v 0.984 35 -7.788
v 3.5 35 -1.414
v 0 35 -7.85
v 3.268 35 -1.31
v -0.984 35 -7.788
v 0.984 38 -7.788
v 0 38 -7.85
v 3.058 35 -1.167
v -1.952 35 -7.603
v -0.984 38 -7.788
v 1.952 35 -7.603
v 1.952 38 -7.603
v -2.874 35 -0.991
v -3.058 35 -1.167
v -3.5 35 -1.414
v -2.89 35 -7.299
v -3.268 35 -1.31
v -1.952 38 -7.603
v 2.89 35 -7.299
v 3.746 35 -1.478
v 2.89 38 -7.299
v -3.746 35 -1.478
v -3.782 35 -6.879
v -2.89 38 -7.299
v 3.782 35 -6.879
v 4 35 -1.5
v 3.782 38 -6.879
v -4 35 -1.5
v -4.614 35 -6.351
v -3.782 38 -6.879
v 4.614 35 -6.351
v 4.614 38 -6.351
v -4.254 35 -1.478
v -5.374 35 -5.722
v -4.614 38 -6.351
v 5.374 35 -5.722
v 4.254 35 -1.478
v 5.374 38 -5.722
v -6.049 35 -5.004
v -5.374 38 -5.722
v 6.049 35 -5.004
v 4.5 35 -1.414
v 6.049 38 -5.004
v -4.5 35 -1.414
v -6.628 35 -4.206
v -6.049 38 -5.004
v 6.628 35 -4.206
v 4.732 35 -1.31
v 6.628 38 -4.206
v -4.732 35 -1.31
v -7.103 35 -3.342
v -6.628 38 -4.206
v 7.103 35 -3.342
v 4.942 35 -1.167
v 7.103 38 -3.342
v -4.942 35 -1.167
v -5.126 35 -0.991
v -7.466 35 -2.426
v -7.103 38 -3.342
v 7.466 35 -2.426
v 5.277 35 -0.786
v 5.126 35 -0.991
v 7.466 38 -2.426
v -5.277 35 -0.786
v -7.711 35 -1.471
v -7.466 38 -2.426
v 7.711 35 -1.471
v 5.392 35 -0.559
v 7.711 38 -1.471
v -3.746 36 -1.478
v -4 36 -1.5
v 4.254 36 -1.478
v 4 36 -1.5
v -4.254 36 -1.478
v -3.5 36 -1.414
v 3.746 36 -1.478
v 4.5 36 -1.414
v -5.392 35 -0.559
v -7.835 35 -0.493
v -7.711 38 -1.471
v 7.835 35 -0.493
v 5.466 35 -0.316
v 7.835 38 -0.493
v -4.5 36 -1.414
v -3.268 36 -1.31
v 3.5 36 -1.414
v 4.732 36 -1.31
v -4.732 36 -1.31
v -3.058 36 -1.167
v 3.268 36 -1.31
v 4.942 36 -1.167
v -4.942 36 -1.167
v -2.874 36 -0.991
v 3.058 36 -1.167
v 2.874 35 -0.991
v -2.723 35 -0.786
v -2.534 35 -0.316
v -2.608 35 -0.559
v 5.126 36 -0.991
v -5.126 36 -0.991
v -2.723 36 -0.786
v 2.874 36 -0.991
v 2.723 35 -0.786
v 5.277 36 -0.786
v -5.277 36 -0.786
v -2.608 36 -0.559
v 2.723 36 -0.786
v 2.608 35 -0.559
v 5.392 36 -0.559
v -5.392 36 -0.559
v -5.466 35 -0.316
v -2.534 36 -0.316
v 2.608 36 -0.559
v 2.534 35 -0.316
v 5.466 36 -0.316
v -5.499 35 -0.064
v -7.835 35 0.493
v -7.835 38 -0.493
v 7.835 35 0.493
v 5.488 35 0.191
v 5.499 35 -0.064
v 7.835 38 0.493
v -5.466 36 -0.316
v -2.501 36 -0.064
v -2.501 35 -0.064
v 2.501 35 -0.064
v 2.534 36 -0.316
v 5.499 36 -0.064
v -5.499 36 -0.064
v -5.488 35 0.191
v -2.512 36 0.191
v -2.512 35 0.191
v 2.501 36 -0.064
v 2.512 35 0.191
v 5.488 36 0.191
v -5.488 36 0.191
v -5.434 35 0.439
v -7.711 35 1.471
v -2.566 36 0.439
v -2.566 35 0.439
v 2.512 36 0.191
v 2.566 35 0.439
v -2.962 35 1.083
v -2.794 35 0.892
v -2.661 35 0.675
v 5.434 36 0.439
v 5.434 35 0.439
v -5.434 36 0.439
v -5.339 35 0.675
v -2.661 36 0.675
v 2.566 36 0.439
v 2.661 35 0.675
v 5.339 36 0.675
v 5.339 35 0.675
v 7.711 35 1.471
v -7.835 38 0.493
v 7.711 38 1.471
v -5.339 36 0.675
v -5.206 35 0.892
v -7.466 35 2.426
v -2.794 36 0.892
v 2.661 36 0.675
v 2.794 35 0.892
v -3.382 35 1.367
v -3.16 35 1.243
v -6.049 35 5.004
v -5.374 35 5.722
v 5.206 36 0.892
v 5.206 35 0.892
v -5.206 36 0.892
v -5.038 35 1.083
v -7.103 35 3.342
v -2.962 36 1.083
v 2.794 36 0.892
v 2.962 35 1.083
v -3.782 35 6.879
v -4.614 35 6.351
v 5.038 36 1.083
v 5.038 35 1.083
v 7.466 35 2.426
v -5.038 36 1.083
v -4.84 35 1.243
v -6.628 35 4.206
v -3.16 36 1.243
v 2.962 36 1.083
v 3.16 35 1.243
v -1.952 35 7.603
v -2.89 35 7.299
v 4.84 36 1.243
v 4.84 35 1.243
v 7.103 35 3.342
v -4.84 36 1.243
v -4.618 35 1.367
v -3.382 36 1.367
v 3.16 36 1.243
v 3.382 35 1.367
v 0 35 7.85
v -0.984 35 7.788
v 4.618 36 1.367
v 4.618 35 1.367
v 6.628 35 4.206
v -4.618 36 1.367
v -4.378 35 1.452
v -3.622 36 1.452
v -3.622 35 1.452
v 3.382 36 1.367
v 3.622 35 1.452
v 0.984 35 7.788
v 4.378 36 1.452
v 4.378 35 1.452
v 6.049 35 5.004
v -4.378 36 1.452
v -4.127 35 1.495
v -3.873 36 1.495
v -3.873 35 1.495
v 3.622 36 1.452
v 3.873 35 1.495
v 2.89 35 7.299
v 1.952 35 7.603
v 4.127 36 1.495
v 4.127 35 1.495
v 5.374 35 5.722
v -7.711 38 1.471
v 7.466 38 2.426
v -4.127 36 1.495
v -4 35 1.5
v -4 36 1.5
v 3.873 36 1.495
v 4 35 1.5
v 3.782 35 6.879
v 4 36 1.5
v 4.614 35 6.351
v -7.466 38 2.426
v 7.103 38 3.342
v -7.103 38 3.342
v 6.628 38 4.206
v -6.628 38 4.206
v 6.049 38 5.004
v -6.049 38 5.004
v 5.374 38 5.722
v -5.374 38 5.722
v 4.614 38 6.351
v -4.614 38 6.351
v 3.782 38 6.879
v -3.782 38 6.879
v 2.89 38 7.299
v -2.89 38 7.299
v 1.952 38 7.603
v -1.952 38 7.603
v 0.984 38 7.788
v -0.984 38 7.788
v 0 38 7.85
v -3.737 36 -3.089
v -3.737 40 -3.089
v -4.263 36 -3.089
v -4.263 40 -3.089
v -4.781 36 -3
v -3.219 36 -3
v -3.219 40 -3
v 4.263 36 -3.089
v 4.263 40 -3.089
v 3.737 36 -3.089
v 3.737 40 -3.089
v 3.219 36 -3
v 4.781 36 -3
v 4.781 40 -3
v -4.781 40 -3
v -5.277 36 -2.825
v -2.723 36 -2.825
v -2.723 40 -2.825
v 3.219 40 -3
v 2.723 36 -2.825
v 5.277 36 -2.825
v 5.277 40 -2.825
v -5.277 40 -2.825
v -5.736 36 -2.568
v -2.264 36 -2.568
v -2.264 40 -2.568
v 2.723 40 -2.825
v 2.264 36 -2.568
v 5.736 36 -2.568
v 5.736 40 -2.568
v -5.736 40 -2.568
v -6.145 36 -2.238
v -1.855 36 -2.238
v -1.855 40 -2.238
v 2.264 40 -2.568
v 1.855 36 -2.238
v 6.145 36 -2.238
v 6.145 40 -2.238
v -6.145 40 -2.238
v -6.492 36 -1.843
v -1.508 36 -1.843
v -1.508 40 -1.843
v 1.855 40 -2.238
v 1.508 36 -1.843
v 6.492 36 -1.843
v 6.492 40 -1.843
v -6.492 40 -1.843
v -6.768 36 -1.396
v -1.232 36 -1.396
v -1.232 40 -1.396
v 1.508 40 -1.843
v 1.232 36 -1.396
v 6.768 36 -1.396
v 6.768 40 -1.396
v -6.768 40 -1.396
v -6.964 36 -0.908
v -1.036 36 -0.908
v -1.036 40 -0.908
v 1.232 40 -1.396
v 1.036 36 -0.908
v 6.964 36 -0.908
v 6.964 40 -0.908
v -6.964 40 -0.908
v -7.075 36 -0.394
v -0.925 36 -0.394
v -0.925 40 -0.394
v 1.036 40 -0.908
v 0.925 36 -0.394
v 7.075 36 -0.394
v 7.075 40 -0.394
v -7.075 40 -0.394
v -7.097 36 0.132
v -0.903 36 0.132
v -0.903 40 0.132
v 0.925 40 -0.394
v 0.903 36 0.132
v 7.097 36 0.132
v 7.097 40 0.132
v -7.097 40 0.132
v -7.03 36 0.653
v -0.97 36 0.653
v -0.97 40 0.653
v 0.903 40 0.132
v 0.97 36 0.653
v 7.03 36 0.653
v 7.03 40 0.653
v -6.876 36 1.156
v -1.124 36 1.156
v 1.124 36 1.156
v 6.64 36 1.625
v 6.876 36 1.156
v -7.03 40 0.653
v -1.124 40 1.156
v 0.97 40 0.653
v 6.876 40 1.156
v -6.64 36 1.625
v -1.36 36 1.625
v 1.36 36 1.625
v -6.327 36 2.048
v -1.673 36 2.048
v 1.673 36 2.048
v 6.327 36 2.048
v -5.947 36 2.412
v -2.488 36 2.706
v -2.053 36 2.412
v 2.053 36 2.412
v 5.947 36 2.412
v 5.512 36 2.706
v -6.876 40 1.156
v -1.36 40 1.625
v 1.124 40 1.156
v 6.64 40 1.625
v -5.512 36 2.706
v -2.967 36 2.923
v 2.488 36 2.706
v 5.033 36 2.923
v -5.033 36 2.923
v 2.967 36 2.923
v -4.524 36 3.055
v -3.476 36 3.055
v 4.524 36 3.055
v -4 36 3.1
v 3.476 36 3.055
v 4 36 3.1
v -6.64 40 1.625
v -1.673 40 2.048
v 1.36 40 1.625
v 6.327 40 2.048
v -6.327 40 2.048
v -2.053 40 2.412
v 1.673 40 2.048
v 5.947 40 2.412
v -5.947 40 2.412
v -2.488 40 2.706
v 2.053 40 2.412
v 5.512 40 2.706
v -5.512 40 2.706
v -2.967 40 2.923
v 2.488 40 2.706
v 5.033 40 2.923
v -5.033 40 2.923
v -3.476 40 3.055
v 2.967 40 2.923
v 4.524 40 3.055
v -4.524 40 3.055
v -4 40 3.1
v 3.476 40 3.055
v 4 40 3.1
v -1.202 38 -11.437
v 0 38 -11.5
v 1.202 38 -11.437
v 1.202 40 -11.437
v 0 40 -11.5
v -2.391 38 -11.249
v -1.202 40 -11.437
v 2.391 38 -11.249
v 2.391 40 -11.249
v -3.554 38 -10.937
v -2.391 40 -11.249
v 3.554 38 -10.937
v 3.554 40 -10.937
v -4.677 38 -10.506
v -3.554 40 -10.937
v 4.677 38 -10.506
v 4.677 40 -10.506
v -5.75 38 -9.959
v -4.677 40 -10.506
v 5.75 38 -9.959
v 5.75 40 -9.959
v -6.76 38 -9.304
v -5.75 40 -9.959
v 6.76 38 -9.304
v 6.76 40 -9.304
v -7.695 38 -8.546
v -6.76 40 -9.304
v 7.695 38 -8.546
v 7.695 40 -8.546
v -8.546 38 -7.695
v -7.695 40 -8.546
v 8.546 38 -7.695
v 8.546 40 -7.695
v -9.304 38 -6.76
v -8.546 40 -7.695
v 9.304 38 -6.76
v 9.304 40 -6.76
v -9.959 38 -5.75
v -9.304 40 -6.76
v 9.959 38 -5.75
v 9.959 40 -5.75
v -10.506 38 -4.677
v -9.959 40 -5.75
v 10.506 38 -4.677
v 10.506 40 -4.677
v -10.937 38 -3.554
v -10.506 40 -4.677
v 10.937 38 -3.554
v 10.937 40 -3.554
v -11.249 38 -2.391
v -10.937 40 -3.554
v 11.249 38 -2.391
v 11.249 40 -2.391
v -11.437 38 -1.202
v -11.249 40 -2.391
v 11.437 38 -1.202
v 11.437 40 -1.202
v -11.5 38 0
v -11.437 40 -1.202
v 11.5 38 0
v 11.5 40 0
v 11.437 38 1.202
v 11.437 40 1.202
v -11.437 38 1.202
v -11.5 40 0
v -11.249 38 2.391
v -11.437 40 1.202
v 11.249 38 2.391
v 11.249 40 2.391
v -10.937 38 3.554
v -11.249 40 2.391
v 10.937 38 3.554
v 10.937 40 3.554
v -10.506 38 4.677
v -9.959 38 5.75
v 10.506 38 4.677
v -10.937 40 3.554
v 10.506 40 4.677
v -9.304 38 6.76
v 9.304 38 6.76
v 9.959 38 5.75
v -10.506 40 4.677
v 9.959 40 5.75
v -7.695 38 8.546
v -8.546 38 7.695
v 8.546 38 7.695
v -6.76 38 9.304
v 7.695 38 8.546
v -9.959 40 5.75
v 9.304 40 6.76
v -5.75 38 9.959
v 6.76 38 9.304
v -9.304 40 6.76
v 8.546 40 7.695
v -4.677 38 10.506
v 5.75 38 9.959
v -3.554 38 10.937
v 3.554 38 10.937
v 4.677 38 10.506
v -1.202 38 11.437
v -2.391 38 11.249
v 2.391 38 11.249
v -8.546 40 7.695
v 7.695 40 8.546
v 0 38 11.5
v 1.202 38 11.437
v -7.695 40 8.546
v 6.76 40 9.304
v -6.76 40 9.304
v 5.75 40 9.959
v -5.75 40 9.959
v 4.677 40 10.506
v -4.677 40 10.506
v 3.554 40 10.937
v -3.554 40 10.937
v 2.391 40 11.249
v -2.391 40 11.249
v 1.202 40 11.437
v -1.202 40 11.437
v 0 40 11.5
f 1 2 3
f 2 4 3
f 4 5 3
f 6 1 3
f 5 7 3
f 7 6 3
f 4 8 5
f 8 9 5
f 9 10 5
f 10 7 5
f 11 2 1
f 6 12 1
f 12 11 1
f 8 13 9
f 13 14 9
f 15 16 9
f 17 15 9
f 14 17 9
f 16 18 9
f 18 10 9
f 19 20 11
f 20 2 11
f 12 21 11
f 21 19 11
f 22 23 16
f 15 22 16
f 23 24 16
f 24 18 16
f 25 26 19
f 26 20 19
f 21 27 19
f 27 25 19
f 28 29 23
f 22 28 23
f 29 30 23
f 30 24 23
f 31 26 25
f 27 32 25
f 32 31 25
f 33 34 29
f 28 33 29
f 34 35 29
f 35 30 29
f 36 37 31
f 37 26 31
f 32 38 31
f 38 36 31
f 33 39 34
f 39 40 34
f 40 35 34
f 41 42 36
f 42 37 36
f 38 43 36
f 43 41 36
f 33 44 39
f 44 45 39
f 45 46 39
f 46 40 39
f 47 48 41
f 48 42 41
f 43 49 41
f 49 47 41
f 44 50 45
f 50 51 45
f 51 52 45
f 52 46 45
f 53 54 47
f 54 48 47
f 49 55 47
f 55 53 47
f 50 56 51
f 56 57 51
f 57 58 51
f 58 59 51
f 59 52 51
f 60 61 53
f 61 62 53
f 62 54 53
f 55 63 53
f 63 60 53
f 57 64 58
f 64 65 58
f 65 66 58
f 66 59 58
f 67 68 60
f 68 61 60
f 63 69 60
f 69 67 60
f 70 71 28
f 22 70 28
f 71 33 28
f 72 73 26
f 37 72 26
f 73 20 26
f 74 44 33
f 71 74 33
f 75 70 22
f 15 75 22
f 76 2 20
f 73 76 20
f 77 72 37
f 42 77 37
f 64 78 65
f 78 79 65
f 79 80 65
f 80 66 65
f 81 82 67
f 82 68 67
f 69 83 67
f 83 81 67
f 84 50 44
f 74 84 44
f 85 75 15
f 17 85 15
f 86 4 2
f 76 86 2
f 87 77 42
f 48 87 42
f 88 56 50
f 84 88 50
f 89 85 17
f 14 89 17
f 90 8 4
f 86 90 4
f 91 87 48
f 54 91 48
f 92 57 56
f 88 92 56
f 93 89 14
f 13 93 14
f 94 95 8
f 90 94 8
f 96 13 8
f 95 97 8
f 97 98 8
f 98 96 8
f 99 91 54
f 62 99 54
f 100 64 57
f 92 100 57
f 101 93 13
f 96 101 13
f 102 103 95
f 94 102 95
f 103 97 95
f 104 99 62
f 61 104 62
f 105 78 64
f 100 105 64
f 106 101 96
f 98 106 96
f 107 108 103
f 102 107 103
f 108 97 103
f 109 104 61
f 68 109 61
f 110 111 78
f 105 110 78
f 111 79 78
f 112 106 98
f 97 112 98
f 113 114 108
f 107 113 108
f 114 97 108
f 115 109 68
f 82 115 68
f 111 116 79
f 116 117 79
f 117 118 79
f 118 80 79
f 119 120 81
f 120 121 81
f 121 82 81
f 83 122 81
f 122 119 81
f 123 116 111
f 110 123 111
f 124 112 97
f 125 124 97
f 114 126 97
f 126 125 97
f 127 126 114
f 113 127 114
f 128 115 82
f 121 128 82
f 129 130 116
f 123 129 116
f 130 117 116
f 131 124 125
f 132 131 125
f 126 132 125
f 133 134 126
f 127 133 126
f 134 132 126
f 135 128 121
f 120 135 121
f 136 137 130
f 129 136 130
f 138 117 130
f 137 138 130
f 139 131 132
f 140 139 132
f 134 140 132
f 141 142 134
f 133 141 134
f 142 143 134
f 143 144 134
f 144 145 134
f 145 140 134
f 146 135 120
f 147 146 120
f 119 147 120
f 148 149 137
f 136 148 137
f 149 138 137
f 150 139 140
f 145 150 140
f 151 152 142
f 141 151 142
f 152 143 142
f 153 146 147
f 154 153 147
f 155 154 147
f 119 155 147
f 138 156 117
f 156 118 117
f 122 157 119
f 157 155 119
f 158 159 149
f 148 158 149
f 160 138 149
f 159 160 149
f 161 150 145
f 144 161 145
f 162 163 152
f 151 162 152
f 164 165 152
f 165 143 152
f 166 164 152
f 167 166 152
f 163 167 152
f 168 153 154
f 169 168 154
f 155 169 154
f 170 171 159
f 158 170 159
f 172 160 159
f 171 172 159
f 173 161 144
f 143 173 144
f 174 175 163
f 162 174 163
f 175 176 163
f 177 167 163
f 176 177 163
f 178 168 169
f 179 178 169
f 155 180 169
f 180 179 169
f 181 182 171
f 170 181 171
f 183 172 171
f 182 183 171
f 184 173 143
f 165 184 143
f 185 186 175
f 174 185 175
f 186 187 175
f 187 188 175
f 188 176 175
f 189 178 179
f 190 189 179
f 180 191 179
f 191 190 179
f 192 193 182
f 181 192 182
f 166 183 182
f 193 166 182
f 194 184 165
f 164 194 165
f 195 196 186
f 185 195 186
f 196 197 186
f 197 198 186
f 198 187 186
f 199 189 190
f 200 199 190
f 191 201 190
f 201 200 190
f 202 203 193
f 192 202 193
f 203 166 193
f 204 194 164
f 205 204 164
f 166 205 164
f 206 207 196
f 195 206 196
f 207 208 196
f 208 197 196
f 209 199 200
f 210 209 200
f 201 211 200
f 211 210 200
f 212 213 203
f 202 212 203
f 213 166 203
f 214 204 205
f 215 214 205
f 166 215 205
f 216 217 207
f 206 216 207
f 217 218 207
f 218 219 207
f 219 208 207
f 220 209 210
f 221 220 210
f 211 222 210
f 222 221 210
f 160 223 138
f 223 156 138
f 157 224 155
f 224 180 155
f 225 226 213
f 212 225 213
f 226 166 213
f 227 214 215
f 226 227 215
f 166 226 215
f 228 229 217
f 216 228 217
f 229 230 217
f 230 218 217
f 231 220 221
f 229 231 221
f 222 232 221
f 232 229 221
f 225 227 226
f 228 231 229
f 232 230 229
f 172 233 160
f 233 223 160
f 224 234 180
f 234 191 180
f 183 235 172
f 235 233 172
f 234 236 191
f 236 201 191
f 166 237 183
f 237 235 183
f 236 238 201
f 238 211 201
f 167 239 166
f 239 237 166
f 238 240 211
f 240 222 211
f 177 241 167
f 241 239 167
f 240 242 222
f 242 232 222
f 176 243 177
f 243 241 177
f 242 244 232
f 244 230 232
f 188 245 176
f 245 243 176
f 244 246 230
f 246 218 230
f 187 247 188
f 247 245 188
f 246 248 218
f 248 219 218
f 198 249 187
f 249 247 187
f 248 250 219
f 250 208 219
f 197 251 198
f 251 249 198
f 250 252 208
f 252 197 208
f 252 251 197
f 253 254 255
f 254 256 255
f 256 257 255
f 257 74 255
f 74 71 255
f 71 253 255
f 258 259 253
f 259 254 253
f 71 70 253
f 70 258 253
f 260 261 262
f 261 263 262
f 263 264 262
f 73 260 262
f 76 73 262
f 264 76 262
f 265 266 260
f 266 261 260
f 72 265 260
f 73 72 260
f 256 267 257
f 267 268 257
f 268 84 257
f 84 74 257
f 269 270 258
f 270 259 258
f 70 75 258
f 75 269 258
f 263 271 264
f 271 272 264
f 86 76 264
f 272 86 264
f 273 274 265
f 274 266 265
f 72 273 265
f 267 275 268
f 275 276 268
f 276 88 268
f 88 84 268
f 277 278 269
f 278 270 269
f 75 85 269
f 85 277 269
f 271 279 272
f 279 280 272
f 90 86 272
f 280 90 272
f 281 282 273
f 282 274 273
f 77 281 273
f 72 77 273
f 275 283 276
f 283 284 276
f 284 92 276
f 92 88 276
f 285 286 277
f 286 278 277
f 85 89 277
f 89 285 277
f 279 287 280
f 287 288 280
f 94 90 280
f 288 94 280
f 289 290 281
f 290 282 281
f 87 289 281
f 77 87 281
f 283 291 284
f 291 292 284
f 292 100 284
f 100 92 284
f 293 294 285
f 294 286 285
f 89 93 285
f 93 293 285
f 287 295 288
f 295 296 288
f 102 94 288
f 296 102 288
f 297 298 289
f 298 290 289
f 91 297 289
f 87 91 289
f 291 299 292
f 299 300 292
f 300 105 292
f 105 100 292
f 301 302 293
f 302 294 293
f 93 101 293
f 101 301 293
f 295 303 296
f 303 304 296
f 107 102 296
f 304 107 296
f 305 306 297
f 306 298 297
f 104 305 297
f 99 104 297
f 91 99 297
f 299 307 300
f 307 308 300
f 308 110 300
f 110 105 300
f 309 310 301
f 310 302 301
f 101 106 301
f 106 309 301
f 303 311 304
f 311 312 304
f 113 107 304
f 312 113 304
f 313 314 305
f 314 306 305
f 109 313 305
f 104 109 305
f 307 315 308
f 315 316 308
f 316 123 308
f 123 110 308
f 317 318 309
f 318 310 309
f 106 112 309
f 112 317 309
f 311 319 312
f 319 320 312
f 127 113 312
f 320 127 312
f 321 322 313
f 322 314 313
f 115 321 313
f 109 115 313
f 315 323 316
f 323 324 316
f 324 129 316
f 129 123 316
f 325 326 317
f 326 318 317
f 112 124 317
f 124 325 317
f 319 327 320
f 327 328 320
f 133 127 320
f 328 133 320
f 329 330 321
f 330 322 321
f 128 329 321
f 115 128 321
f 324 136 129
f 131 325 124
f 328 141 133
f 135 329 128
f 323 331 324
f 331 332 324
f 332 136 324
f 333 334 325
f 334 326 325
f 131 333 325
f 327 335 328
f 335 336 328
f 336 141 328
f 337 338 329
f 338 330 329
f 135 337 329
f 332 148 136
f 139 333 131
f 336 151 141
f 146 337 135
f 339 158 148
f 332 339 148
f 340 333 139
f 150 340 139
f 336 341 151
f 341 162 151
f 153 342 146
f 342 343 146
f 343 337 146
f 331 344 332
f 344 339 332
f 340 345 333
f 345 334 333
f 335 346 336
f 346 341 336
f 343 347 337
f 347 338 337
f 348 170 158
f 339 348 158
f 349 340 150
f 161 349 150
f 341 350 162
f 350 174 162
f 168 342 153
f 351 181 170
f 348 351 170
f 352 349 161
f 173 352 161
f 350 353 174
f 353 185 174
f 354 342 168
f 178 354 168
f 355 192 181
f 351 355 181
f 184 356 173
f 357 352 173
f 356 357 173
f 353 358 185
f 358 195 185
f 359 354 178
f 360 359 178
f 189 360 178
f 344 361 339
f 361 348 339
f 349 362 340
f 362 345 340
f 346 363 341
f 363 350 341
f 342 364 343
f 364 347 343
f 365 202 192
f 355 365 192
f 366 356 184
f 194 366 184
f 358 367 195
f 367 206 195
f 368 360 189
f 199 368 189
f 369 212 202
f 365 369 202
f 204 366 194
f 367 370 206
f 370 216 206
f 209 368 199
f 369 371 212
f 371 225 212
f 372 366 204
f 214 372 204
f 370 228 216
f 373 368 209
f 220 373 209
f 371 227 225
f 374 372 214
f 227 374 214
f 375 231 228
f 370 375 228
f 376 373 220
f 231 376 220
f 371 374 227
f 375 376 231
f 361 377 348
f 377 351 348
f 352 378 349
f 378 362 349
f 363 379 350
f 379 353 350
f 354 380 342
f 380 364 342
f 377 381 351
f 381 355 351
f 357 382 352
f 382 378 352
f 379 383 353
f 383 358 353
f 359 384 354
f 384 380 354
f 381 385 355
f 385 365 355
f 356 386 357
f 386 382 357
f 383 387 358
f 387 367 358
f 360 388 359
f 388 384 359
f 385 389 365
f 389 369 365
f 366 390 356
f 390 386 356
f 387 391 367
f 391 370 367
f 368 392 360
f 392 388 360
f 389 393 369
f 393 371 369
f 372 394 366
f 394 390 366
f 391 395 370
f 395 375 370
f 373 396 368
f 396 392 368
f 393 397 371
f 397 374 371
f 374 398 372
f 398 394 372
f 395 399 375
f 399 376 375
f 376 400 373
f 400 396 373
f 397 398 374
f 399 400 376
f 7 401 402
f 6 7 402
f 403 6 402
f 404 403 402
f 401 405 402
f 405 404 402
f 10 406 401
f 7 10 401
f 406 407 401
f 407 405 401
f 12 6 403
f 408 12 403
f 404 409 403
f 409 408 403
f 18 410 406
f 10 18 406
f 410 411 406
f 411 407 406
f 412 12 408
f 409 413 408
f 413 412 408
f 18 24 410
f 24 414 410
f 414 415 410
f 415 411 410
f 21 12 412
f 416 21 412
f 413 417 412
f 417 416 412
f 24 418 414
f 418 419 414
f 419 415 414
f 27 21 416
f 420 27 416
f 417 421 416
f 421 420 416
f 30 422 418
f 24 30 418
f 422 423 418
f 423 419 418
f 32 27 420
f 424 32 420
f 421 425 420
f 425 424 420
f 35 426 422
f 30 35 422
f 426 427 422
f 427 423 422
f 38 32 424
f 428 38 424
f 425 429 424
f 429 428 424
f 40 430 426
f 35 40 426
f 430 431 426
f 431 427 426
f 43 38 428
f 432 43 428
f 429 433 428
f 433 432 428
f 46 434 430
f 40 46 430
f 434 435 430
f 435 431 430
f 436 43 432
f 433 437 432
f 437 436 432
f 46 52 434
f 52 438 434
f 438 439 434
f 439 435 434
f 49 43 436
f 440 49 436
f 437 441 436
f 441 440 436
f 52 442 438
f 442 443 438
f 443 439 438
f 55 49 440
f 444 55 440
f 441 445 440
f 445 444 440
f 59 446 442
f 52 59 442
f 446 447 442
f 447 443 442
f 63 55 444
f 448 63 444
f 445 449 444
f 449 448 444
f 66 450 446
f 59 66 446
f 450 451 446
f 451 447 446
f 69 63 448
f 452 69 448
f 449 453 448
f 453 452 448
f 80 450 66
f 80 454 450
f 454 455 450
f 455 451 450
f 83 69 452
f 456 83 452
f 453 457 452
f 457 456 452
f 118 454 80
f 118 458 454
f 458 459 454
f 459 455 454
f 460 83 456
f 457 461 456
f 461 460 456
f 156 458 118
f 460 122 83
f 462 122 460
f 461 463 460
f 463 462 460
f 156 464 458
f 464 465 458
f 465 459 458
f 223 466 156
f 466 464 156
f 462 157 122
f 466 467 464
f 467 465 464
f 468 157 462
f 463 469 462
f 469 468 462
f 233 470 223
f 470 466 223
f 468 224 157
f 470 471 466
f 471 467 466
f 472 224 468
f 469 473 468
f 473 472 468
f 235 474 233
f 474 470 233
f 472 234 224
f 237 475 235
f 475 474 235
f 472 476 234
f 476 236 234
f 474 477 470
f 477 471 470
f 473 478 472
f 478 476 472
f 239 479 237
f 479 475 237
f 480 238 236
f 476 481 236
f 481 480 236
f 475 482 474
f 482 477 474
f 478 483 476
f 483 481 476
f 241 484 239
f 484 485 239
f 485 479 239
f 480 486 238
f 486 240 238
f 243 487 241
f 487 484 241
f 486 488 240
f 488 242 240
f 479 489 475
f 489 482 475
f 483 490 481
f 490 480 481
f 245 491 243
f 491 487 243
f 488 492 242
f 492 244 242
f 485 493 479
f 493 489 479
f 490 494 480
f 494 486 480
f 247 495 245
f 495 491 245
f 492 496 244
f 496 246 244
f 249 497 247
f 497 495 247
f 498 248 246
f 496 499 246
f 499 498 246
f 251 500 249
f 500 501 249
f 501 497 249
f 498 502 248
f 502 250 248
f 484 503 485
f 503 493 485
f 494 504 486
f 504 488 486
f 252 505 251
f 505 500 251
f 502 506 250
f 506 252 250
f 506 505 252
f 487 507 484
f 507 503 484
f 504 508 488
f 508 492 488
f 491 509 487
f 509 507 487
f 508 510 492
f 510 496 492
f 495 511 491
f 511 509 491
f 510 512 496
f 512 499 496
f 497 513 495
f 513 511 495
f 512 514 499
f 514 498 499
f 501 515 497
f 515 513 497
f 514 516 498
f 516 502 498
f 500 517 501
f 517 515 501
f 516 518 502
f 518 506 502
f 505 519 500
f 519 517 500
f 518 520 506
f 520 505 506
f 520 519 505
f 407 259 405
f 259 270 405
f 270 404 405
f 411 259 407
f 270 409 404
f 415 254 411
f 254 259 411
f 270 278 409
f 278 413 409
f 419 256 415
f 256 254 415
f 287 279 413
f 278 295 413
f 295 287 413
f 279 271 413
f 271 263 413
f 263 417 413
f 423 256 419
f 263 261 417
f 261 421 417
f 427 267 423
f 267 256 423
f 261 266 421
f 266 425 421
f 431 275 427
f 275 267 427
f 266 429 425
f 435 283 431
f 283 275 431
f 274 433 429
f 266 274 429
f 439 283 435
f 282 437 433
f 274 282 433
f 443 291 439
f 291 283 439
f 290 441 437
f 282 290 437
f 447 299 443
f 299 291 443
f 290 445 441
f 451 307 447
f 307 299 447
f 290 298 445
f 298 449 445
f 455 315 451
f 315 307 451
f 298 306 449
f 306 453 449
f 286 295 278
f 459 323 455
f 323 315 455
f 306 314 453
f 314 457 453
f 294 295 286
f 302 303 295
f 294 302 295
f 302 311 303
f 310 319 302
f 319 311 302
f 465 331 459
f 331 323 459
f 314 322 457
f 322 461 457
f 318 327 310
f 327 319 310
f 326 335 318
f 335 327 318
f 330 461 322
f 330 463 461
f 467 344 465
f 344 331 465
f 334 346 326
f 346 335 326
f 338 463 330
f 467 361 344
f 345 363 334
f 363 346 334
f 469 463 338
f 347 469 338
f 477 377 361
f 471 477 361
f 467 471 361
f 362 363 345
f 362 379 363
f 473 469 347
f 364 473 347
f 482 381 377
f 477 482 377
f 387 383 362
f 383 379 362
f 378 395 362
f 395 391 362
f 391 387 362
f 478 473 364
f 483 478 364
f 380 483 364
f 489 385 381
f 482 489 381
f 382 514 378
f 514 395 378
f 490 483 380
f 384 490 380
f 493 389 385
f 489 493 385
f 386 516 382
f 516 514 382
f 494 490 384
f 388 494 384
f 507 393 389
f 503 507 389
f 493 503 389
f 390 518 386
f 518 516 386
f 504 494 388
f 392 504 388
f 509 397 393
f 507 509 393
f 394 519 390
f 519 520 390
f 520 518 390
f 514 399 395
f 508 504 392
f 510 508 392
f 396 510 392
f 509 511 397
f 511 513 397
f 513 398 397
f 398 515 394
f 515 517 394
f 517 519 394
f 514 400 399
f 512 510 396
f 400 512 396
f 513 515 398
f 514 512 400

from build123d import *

# Parameters (mm, degrees)
SKETCH1_R           = 7.85
SKETCH1_R_2         = 1.5
BOSS_EXTRUDE1_DEPTH = 3
SKETCH2_R           = 11.5
SKETCH2_R_2         = 1.5
BOSS_EXTRUDE2_DEPTH = 2
SKETCH3_R           = 3.1
CUT_EXTRUDE1_DEPTH  = 4


with BuildPart() as part:
    # Sketch1 → Boss-Extrude1 (new body)
    with BuildSketch(Plane(origin=(0, 35, 0), x_dir=(1, 0, 0), z_dir=(0, 1, 0))):
        Circle(SKETCH1_R)
        with Locations((-4, 0)):
            Circle(SKETCH1_R_2, mode=Mode.SUBTRACT)
        with Locations((4, 0)):
            Circle(SKETCH1_R_2, mode=Mode.SUBTRACT)
    extrude(amount=BOSS_EXTRUDE1_DEPTH)

    # Sketch2 → Boss-Extrude2 (add)
    with BuildSketch(Plane(origin=(0, 38, 0), x_dir=(1, 0, 0), z_dir=(0, 1, 0))):
        Circle(SKETCH2_R)
        with Locations((-4, 0)):
            Circle(SKETCH2_R_2, mode=Mode.SUBTRACT)
        with Locations((4, 0)):
            Circle(SKETCH2_R_2, mode=Mode.SUBTRACT)
    extrude(amount=BOSS_EXTRUDE2_DEPTH)

    # Sketch3 → Cut-Extrude1 (cut)
    with BuildSketch(Plane(origin=(0, 40, 0), x_dir=(1, 0, 0), z_dir=(0, 1, 0))):
        with Locations((-4, 0)):
            Circle(SKETCH3_R)
        with Locations((4, 0)):
            Circle(SKETCH3_R)
    extrude(amount=-CUT_EXTRUDE1_DEPTH, mode=Mode.SUBTRACT)


solid = part.part
